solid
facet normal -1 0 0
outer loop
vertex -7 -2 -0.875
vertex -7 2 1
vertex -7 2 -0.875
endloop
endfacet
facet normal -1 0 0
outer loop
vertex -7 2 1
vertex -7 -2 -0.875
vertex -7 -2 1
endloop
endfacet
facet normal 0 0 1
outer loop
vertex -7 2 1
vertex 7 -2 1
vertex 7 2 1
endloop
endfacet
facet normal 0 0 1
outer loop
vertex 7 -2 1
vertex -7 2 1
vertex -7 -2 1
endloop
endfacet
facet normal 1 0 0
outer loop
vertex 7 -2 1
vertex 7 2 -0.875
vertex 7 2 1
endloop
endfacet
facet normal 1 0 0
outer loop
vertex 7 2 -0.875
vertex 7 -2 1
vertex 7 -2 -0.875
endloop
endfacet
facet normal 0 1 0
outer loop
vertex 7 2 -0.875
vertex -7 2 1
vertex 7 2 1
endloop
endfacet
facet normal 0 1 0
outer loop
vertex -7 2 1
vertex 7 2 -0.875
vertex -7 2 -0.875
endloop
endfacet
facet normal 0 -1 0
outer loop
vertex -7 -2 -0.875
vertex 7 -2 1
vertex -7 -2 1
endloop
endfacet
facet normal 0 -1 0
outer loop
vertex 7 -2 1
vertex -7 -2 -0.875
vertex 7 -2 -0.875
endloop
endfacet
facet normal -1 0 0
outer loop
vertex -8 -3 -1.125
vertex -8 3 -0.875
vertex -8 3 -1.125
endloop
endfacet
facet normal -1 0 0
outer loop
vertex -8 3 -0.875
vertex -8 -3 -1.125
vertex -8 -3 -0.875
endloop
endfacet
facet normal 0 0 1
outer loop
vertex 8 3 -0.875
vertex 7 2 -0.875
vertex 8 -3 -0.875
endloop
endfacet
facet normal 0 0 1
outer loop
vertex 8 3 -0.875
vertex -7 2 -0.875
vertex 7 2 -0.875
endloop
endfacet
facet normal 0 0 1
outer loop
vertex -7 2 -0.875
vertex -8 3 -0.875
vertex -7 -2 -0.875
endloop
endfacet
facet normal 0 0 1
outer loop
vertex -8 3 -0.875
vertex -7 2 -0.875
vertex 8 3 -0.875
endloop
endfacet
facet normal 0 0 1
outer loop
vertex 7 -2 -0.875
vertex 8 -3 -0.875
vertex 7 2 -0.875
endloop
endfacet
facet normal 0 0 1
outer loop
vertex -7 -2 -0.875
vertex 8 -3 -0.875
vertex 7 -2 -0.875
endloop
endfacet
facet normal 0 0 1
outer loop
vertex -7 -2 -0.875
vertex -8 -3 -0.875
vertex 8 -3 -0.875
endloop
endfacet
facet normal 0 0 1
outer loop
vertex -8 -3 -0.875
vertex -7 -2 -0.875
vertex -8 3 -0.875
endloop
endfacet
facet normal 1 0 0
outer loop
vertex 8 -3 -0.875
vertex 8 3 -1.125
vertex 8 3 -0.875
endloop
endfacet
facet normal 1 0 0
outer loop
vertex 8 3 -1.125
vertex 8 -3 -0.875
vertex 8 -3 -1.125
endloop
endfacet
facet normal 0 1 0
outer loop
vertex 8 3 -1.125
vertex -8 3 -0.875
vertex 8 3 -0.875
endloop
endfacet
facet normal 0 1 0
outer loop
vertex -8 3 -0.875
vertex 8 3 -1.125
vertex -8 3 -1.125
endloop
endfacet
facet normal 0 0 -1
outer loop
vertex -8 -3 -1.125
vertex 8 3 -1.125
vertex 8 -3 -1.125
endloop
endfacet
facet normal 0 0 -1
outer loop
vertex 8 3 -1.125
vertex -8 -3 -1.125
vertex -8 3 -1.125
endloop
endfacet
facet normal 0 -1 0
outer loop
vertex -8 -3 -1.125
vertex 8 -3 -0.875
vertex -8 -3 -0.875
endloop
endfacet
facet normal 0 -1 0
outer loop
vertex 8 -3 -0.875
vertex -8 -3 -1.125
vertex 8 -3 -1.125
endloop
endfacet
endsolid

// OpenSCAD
// octacon led diffusor
// alias openscad=~/Applications/OpenSCAD-2021.01-x86_64.AppImage
// openscad -o led.stl led.scad
// f3d led.stl
//
// slicer settings:
// - normal (0.15mm)
// - infill pattern=tri-hexagon
//
// Use transparent PLA

// wall thickness
wd=2.0;

// leds
lw=14;
lh=4;

union() {
    cube([lw,lh, wd], center=true);
    translate([0,0,-wd/2]) { cube([lw+2,lh+2,0.25],center=true); }
}
